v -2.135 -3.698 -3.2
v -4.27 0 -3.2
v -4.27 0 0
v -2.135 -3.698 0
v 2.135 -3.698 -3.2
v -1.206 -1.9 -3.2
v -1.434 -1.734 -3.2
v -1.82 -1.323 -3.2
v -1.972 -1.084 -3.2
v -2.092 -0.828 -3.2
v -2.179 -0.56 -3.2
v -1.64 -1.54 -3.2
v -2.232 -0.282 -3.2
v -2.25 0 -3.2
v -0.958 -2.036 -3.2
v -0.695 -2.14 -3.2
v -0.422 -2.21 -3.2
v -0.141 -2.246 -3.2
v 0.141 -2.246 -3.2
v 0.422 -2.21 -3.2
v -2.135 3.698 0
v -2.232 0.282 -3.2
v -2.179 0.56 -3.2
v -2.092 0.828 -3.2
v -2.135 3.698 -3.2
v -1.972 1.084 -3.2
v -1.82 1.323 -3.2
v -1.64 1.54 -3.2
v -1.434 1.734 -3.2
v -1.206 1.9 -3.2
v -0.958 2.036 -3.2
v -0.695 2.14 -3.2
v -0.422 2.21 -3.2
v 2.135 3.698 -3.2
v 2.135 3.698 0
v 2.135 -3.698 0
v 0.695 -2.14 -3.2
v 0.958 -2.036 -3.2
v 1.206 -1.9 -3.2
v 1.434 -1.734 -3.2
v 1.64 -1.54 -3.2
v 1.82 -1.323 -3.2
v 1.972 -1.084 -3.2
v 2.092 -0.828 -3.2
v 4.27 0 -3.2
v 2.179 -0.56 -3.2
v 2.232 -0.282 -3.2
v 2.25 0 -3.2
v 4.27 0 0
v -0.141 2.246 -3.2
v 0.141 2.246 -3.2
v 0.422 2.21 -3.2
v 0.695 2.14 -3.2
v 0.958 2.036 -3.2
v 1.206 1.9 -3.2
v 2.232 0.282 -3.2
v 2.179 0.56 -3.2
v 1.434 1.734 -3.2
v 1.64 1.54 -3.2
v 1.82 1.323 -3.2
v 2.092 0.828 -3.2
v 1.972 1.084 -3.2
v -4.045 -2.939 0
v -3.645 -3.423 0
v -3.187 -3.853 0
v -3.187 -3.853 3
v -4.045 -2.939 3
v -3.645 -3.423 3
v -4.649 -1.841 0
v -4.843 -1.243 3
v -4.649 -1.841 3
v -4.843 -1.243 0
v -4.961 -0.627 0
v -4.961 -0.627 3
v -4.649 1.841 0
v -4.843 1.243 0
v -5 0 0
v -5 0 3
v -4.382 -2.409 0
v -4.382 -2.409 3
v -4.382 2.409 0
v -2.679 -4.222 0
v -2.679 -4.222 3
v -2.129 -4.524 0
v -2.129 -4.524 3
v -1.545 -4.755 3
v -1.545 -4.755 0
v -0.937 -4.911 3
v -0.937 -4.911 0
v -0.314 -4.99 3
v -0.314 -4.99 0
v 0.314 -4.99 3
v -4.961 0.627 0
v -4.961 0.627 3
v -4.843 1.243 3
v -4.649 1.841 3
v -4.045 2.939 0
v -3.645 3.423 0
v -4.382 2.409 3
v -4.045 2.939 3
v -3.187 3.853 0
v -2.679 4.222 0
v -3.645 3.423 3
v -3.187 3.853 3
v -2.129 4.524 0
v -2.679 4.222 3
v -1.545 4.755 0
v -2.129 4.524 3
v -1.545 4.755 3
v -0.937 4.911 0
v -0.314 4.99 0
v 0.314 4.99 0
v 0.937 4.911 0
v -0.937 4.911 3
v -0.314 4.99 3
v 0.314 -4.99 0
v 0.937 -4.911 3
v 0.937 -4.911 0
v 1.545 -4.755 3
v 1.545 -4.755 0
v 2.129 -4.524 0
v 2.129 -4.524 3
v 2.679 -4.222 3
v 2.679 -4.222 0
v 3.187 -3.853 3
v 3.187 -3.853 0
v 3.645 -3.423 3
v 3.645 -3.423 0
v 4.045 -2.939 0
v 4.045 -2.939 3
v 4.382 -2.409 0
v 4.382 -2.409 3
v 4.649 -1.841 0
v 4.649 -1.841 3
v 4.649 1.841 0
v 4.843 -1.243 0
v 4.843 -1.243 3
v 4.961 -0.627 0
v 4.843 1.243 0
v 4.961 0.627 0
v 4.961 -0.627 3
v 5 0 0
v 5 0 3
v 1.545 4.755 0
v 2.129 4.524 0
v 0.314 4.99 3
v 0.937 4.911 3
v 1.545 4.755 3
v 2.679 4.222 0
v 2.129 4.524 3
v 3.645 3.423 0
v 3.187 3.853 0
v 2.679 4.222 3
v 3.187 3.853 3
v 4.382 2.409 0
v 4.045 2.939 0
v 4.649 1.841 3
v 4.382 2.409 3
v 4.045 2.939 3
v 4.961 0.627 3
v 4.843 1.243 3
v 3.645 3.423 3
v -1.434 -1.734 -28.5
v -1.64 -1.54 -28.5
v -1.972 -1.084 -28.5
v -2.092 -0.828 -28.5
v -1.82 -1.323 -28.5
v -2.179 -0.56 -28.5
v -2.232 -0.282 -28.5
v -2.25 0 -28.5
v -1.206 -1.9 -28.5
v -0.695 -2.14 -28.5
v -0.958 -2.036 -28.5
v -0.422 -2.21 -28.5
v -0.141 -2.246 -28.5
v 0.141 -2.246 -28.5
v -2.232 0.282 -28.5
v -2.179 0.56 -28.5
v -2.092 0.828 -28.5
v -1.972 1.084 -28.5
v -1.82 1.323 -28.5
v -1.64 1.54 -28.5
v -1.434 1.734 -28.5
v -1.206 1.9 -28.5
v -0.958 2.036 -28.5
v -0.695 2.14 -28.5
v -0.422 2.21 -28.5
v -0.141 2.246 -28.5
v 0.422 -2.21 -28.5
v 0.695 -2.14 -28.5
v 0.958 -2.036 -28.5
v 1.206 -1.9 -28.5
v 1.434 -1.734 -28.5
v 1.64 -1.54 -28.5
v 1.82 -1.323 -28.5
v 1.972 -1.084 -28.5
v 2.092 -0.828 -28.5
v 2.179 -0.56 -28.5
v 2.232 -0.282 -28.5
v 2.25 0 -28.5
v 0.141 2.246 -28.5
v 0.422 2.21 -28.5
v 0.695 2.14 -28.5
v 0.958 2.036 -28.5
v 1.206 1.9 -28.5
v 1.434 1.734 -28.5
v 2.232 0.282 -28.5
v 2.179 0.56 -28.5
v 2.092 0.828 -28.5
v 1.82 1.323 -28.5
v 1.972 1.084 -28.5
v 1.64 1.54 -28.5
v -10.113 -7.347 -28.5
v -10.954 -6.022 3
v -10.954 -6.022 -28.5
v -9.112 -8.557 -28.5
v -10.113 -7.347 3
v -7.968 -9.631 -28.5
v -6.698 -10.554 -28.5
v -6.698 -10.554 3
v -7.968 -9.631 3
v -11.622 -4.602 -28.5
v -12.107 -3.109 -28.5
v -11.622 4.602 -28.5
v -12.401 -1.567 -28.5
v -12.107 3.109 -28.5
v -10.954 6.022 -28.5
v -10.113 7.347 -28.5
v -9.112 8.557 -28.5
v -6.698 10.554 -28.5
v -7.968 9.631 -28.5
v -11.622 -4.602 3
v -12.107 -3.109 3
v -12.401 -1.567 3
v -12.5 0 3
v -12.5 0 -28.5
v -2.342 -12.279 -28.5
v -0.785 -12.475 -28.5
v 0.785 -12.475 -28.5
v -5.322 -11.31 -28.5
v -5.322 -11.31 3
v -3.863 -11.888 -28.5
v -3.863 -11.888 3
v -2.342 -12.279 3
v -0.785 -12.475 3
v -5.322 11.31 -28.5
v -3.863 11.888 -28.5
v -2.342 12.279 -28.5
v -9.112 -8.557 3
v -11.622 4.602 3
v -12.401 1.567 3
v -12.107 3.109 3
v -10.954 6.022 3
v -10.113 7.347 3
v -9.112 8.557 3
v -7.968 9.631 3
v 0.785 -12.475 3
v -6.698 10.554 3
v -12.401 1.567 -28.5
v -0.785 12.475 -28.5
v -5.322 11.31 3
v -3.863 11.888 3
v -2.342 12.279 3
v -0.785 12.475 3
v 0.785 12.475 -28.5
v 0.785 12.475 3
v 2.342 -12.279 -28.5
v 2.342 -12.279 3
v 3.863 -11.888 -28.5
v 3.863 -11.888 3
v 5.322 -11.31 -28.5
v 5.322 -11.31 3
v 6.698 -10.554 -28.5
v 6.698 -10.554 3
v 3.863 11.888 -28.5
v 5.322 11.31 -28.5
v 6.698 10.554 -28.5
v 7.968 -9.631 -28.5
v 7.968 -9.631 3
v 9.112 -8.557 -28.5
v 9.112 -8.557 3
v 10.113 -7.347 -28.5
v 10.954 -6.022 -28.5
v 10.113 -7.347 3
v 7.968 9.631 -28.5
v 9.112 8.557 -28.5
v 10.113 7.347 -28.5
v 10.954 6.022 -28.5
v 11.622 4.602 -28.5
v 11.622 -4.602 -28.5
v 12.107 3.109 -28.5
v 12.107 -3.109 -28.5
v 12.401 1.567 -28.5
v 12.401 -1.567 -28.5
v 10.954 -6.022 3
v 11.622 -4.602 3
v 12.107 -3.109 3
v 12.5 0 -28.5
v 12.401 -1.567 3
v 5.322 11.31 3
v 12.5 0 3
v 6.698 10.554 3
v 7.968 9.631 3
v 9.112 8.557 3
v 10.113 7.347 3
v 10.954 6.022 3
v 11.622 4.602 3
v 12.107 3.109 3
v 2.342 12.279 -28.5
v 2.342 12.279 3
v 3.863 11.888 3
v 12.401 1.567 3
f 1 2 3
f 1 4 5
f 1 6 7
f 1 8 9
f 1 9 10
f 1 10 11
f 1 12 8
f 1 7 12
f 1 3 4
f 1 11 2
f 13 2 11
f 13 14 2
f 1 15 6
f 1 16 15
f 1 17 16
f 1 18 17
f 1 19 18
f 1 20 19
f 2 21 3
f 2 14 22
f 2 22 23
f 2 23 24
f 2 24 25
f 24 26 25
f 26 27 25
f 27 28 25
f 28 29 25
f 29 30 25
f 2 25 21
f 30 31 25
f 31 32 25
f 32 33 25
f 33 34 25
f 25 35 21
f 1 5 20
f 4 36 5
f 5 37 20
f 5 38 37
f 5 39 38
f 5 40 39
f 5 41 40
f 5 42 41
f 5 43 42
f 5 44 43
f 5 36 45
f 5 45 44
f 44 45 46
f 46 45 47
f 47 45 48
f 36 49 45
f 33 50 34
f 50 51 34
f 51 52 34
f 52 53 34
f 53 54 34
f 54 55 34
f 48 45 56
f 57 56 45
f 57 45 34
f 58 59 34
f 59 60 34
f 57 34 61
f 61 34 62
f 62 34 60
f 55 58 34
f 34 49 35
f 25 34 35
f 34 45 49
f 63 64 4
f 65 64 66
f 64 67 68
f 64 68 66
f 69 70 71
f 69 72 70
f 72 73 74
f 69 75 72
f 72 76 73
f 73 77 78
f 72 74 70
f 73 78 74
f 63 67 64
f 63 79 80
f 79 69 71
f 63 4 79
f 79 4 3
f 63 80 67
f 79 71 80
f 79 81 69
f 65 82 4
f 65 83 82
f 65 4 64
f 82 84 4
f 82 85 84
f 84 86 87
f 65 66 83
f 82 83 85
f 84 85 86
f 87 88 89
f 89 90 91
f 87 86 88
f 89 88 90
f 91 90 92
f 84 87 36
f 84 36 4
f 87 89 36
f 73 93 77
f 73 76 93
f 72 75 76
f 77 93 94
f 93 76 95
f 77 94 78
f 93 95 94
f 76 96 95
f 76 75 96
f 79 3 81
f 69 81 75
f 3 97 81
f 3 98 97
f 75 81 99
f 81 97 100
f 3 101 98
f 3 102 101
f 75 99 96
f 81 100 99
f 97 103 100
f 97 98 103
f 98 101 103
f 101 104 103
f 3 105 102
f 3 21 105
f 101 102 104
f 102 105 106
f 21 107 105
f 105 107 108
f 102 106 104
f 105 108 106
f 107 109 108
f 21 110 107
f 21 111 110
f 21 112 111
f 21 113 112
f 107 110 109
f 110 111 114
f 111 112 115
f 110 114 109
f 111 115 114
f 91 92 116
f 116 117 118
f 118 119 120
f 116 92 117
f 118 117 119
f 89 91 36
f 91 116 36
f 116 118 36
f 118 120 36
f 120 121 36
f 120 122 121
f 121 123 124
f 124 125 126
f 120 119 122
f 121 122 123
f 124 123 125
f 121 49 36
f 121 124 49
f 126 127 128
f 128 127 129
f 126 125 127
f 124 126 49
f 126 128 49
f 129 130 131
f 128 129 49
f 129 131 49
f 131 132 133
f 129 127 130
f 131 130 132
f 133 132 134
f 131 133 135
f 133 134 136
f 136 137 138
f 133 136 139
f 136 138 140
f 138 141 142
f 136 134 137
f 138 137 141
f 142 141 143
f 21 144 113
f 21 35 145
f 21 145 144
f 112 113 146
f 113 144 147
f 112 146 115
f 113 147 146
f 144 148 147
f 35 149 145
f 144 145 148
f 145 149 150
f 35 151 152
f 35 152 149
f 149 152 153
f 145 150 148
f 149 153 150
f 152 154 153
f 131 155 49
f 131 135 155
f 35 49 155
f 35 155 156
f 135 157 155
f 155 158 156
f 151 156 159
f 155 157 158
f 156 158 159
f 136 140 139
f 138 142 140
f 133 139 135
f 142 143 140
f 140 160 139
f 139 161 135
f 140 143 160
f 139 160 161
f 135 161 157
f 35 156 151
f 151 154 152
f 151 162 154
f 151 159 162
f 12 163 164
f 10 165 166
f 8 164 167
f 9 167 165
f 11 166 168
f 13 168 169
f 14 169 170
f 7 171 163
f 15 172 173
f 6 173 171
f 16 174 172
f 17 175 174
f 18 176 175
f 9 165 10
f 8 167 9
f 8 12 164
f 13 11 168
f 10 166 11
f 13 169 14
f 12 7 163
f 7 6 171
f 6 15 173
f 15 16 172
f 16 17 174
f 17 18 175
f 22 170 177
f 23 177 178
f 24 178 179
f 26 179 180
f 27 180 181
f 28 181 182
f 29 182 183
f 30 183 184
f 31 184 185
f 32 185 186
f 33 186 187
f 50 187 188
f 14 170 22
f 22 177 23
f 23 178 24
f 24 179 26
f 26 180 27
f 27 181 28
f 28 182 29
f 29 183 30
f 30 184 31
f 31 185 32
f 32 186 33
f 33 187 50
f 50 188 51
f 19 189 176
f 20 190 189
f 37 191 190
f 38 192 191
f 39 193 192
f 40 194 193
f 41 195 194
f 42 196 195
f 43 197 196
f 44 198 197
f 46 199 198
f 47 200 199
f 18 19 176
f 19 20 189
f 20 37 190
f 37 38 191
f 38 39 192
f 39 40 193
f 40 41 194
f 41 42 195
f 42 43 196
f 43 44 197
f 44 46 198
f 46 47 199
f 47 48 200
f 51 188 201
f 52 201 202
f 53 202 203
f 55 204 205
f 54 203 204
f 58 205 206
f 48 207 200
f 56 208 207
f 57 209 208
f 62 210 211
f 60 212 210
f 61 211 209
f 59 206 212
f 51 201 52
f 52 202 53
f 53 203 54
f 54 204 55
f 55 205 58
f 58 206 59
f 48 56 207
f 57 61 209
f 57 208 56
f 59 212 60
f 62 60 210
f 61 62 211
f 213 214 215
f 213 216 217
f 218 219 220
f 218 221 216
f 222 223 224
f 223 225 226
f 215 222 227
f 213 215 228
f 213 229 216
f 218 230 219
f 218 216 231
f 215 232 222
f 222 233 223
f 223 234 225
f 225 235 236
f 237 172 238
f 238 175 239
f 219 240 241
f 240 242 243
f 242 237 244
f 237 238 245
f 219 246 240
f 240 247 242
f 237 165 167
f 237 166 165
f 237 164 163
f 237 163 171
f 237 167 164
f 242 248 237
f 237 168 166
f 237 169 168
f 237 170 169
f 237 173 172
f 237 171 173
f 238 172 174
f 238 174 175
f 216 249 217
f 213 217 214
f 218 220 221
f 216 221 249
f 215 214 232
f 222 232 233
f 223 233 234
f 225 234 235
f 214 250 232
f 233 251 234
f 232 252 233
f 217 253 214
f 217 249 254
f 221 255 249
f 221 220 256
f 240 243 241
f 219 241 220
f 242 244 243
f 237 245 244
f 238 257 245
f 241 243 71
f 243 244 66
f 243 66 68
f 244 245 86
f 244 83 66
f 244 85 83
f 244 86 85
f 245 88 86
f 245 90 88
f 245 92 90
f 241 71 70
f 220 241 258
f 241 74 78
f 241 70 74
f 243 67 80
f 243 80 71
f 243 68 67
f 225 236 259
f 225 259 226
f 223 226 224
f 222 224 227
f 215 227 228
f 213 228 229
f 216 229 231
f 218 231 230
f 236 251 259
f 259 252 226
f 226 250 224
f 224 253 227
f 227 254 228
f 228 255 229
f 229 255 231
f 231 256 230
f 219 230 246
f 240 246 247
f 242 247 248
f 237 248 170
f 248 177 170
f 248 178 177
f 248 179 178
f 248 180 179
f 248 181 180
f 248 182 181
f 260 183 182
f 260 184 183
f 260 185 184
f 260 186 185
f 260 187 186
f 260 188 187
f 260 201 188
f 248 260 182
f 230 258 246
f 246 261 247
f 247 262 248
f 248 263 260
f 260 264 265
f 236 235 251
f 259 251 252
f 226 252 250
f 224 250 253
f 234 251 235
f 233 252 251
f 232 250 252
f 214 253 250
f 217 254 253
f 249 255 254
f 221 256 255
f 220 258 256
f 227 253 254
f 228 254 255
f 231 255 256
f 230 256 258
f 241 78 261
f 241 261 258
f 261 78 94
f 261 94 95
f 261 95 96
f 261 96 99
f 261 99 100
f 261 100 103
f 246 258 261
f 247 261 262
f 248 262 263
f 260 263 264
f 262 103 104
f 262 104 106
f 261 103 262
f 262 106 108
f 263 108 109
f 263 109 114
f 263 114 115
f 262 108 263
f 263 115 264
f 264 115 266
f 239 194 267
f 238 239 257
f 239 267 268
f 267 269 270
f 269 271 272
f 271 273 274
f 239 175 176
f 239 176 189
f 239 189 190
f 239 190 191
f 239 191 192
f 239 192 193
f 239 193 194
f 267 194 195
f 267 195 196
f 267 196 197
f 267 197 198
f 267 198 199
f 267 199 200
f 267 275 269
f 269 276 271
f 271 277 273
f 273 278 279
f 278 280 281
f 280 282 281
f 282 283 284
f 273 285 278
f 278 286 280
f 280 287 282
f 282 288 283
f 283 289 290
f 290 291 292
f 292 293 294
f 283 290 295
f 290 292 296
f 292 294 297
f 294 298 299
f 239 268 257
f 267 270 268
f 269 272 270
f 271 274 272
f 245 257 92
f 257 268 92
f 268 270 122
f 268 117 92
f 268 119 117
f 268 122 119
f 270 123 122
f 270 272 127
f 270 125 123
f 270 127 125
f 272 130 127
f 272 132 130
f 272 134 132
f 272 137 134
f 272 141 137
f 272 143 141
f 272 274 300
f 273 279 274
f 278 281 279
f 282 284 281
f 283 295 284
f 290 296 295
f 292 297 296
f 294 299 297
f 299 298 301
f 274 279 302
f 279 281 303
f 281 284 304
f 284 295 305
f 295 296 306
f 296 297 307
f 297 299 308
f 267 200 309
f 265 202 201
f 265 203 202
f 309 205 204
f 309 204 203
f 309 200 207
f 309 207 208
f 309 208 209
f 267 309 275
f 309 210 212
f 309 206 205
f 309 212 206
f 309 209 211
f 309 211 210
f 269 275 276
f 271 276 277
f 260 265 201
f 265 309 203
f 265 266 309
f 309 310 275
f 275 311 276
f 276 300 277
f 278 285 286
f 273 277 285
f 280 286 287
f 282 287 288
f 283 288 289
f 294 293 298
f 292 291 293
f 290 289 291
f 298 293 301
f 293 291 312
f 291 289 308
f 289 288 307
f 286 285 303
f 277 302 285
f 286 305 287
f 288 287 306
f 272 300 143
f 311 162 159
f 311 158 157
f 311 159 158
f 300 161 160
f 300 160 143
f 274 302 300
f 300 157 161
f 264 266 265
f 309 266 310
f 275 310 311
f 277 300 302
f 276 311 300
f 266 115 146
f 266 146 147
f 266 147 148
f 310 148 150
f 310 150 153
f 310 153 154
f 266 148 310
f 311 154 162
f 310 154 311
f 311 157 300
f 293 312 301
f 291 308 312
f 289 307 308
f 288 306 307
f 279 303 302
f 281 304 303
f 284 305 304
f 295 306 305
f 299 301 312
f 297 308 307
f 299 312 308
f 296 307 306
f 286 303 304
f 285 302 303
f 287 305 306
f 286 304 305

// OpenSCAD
$fn = 50;


difference() {
	union() {
		translate(v = [0, 0, -28.5000000000]) {
			cylinder(h = 31.5000000000, r = 12.5000000000);
		}
	}
	union() {
		translate(v = [0, 0, 0]) {
			rotate(a = [0, 0, 0]) {
				difference() {
					union() {
						translate(v = [0, 0, -3.2000000000]) {
							linear_extrude(height = 3.2000000000) {
								polygon(points = [[4.2698000000, 0.0000000000], [2.1349000000, 3.6977552691], [-2.1349000000, 3.6977552691], [-4.2698000000, 0.0000000000], [-2.1349000000, -3.6977552691], [2.1349000000, -3.6977552691]]);
							}
						}
					}
					union();
				}
			}
		}
		#cylinder(h = 3, r = 5.0000000000);
		#translate(v = [0, 0, -100.0000000000]) {
			cylinder(h = 200, r = 2.2500000000);
		}
	}
}
